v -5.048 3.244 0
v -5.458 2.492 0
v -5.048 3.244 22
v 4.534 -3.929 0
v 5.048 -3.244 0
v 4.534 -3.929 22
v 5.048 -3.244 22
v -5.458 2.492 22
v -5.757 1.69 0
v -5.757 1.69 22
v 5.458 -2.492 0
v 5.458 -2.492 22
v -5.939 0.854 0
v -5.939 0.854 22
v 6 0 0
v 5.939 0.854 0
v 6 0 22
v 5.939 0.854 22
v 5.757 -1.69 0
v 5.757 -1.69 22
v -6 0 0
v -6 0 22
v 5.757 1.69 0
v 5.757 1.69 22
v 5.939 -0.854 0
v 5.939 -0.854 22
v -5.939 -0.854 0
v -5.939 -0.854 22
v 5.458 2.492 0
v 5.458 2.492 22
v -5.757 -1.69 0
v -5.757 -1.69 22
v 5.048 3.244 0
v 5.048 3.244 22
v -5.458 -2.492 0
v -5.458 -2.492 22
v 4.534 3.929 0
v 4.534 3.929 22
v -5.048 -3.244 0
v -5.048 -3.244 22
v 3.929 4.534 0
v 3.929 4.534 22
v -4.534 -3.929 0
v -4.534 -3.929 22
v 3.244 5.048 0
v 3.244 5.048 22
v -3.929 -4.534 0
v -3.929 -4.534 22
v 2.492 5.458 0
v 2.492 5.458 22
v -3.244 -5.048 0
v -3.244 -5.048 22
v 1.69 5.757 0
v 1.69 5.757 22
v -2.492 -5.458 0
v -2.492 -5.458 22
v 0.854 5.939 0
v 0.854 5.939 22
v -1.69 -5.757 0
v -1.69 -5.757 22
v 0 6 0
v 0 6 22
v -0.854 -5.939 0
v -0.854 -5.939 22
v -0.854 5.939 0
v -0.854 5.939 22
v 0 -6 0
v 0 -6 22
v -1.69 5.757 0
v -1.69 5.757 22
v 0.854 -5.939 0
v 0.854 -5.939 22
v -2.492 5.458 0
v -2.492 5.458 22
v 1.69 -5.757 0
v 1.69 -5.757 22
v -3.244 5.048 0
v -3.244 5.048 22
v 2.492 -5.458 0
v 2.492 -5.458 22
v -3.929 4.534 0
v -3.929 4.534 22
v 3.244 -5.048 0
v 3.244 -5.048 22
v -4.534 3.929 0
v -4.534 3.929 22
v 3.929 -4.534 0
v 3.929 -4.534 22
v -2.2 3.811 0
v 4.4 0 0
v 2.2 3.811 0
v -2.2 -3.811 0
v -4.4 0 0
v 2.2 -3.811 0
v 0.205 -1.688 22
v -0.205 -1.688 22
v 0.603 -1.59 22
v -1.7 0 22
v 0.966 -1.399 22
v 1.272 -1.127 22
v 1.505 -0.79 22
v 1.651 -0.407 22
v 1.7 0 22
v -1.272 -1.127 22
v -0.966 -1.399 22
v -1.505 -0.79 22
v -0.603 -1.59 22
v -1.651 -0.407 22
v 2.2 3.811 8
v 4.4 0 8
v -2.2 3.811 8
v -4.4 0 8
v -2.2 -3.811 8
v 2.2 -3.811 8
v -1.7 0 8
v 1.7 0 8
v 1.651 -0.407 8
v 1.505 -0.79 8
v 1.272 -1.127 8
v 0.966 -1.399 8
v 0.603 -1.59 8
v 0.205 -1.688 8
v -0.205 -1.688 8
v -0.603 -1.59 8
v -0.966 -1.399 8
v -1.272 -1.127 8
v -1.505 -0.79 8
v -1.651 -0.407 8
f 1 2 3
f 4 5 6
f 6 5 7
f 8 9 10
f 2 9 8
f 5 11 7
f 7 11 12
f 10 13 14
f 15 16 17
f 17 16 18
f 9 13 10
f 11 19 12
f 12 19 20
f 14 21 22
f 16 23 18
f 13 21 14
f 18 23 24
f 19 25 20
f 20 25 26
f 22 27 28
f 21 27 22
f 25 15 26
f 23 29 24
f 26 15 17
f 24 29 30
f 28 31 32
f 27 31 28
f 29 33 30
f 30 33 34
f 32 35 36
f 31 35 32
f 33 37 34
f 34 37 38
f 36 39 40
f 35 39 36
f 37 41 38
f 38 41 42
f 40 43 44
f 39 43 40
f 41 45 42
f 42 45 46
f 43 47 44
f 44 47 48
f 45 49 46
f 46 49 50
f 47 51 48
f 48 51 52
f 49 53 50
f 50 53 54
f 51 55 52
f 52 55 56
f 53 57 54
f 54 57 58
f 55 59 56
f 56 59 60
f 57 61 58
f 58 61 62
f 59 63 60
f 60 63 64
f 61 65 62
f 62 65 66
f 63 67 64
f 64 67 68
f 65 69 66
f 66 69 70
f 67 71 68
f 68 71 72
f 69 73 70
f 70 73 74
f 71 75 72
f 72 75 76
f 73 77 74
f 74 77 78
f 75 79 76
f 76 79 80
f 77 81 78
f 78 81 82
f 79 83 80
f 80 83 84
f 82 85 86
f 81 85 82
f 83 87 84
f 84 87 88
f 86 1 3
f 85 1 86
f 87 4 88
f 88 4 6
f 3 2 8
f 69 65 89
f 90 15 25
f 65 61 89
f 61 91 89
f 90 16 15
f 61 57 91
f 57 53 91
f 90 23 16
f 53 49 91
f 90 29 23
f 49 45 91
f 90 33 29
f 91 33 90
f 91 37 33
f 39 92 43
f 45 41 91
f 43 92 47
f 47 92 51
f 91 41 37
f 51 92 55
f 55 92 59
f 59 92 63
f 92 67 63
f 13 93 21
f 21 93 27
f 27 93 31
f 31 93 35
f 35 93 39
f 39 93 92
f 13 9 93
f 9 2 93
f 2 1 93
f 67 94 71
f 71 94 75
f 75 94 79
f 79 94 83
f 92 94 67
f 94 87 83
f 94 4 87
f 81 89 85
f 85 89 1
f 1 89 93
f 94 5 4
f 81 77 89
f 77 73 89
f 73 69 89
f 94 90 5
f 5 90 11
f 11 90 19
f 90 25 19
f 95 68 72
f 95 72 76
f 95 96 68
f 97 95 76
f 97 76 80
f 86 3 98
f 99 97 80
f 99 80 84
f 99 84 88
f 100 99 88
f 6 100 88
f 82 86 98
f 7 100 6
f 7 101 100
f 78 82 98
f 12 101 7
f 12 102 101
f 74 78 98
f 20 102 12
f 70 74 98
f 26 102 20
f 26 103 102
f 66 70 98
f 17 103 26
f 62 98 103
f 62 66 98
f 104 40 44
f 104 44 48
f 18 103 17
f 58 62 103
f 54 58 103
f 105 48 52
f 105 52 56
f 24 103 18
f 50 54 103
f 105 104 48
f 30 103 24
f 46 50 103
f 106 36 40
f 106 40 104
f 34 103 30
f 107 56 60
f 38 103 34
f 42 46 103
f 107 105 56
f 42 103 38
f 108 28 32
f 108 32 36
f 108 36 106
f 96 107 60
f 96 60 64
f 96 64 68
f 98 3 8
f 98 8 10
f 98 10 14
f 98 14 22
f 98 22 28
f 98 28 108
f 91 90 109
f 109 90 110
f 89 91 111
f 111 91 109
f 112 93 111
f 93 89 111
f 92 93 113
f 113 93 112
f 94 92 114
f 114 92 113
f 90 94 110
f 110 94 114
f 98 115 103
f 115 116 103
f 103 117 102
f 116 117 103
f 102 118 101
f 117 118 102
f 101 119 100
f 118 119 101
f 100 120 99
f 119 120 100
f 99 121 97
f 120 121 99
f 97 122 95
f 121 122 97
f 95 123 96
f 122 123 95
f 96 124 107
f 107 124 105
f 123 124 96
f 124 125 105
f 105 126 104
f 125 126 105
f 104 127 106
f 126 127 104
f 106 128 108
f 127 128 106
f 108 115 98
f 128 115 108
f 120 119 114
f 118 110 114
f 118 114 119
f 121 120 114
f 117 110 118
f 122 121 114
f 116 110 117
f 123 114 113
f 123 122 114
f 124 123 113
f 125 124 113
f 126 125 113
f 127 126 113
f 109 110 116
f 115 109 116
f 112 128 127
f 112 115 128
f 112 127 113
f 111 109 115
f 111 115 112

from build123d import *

# Parameters (mm, degrees)
SKETCH_R        = 6
PAD_DEPTH       = 22
POCKET_DEPTH    = 25
POCKET001_DEPTH = 8


with BuildPart() as part:
    # Sketch → Pad (new body)
    with BuildSketch(Plane.XY):
        Circle(SKETCH_R)
    extrude(amount=PAD_DEPTH)

    # Sketch003 → Pocket (cut)
    with BuildSketch(Plane(origin=(0, 0, 0), x_dir=(1, 0, 0), z_dir=(0, 0, -1))):
        with BuildLine():
            ThreePointArc((1.7, 0), (0, 1.7), (-1.7, 0))
            Line((-1.7, 0), (1.7, 0))
        make_face()
    extrude(amount=-POCKET_DEPTH, mode=Mode.SUBTRACT)

    # Sketch004 (on Face2 of Pocket) → Pocket001 (cut)
    with BuildSketch(Plane(origin=(0, 0, 0), x_dir=(1, 0, 0), z_dir=(0, 0, -1))):
        Polygon((4.4, 0), (2.2, 3.810512), (-2.2, 3.810512), (-4.4, 0), (-2.2, -3.810512), (2.2, -3.810512), align=None)
    extrude(amount=-POCKET001_DEPTH, mode=Mode.SUBTRACT)


solid = part.part
